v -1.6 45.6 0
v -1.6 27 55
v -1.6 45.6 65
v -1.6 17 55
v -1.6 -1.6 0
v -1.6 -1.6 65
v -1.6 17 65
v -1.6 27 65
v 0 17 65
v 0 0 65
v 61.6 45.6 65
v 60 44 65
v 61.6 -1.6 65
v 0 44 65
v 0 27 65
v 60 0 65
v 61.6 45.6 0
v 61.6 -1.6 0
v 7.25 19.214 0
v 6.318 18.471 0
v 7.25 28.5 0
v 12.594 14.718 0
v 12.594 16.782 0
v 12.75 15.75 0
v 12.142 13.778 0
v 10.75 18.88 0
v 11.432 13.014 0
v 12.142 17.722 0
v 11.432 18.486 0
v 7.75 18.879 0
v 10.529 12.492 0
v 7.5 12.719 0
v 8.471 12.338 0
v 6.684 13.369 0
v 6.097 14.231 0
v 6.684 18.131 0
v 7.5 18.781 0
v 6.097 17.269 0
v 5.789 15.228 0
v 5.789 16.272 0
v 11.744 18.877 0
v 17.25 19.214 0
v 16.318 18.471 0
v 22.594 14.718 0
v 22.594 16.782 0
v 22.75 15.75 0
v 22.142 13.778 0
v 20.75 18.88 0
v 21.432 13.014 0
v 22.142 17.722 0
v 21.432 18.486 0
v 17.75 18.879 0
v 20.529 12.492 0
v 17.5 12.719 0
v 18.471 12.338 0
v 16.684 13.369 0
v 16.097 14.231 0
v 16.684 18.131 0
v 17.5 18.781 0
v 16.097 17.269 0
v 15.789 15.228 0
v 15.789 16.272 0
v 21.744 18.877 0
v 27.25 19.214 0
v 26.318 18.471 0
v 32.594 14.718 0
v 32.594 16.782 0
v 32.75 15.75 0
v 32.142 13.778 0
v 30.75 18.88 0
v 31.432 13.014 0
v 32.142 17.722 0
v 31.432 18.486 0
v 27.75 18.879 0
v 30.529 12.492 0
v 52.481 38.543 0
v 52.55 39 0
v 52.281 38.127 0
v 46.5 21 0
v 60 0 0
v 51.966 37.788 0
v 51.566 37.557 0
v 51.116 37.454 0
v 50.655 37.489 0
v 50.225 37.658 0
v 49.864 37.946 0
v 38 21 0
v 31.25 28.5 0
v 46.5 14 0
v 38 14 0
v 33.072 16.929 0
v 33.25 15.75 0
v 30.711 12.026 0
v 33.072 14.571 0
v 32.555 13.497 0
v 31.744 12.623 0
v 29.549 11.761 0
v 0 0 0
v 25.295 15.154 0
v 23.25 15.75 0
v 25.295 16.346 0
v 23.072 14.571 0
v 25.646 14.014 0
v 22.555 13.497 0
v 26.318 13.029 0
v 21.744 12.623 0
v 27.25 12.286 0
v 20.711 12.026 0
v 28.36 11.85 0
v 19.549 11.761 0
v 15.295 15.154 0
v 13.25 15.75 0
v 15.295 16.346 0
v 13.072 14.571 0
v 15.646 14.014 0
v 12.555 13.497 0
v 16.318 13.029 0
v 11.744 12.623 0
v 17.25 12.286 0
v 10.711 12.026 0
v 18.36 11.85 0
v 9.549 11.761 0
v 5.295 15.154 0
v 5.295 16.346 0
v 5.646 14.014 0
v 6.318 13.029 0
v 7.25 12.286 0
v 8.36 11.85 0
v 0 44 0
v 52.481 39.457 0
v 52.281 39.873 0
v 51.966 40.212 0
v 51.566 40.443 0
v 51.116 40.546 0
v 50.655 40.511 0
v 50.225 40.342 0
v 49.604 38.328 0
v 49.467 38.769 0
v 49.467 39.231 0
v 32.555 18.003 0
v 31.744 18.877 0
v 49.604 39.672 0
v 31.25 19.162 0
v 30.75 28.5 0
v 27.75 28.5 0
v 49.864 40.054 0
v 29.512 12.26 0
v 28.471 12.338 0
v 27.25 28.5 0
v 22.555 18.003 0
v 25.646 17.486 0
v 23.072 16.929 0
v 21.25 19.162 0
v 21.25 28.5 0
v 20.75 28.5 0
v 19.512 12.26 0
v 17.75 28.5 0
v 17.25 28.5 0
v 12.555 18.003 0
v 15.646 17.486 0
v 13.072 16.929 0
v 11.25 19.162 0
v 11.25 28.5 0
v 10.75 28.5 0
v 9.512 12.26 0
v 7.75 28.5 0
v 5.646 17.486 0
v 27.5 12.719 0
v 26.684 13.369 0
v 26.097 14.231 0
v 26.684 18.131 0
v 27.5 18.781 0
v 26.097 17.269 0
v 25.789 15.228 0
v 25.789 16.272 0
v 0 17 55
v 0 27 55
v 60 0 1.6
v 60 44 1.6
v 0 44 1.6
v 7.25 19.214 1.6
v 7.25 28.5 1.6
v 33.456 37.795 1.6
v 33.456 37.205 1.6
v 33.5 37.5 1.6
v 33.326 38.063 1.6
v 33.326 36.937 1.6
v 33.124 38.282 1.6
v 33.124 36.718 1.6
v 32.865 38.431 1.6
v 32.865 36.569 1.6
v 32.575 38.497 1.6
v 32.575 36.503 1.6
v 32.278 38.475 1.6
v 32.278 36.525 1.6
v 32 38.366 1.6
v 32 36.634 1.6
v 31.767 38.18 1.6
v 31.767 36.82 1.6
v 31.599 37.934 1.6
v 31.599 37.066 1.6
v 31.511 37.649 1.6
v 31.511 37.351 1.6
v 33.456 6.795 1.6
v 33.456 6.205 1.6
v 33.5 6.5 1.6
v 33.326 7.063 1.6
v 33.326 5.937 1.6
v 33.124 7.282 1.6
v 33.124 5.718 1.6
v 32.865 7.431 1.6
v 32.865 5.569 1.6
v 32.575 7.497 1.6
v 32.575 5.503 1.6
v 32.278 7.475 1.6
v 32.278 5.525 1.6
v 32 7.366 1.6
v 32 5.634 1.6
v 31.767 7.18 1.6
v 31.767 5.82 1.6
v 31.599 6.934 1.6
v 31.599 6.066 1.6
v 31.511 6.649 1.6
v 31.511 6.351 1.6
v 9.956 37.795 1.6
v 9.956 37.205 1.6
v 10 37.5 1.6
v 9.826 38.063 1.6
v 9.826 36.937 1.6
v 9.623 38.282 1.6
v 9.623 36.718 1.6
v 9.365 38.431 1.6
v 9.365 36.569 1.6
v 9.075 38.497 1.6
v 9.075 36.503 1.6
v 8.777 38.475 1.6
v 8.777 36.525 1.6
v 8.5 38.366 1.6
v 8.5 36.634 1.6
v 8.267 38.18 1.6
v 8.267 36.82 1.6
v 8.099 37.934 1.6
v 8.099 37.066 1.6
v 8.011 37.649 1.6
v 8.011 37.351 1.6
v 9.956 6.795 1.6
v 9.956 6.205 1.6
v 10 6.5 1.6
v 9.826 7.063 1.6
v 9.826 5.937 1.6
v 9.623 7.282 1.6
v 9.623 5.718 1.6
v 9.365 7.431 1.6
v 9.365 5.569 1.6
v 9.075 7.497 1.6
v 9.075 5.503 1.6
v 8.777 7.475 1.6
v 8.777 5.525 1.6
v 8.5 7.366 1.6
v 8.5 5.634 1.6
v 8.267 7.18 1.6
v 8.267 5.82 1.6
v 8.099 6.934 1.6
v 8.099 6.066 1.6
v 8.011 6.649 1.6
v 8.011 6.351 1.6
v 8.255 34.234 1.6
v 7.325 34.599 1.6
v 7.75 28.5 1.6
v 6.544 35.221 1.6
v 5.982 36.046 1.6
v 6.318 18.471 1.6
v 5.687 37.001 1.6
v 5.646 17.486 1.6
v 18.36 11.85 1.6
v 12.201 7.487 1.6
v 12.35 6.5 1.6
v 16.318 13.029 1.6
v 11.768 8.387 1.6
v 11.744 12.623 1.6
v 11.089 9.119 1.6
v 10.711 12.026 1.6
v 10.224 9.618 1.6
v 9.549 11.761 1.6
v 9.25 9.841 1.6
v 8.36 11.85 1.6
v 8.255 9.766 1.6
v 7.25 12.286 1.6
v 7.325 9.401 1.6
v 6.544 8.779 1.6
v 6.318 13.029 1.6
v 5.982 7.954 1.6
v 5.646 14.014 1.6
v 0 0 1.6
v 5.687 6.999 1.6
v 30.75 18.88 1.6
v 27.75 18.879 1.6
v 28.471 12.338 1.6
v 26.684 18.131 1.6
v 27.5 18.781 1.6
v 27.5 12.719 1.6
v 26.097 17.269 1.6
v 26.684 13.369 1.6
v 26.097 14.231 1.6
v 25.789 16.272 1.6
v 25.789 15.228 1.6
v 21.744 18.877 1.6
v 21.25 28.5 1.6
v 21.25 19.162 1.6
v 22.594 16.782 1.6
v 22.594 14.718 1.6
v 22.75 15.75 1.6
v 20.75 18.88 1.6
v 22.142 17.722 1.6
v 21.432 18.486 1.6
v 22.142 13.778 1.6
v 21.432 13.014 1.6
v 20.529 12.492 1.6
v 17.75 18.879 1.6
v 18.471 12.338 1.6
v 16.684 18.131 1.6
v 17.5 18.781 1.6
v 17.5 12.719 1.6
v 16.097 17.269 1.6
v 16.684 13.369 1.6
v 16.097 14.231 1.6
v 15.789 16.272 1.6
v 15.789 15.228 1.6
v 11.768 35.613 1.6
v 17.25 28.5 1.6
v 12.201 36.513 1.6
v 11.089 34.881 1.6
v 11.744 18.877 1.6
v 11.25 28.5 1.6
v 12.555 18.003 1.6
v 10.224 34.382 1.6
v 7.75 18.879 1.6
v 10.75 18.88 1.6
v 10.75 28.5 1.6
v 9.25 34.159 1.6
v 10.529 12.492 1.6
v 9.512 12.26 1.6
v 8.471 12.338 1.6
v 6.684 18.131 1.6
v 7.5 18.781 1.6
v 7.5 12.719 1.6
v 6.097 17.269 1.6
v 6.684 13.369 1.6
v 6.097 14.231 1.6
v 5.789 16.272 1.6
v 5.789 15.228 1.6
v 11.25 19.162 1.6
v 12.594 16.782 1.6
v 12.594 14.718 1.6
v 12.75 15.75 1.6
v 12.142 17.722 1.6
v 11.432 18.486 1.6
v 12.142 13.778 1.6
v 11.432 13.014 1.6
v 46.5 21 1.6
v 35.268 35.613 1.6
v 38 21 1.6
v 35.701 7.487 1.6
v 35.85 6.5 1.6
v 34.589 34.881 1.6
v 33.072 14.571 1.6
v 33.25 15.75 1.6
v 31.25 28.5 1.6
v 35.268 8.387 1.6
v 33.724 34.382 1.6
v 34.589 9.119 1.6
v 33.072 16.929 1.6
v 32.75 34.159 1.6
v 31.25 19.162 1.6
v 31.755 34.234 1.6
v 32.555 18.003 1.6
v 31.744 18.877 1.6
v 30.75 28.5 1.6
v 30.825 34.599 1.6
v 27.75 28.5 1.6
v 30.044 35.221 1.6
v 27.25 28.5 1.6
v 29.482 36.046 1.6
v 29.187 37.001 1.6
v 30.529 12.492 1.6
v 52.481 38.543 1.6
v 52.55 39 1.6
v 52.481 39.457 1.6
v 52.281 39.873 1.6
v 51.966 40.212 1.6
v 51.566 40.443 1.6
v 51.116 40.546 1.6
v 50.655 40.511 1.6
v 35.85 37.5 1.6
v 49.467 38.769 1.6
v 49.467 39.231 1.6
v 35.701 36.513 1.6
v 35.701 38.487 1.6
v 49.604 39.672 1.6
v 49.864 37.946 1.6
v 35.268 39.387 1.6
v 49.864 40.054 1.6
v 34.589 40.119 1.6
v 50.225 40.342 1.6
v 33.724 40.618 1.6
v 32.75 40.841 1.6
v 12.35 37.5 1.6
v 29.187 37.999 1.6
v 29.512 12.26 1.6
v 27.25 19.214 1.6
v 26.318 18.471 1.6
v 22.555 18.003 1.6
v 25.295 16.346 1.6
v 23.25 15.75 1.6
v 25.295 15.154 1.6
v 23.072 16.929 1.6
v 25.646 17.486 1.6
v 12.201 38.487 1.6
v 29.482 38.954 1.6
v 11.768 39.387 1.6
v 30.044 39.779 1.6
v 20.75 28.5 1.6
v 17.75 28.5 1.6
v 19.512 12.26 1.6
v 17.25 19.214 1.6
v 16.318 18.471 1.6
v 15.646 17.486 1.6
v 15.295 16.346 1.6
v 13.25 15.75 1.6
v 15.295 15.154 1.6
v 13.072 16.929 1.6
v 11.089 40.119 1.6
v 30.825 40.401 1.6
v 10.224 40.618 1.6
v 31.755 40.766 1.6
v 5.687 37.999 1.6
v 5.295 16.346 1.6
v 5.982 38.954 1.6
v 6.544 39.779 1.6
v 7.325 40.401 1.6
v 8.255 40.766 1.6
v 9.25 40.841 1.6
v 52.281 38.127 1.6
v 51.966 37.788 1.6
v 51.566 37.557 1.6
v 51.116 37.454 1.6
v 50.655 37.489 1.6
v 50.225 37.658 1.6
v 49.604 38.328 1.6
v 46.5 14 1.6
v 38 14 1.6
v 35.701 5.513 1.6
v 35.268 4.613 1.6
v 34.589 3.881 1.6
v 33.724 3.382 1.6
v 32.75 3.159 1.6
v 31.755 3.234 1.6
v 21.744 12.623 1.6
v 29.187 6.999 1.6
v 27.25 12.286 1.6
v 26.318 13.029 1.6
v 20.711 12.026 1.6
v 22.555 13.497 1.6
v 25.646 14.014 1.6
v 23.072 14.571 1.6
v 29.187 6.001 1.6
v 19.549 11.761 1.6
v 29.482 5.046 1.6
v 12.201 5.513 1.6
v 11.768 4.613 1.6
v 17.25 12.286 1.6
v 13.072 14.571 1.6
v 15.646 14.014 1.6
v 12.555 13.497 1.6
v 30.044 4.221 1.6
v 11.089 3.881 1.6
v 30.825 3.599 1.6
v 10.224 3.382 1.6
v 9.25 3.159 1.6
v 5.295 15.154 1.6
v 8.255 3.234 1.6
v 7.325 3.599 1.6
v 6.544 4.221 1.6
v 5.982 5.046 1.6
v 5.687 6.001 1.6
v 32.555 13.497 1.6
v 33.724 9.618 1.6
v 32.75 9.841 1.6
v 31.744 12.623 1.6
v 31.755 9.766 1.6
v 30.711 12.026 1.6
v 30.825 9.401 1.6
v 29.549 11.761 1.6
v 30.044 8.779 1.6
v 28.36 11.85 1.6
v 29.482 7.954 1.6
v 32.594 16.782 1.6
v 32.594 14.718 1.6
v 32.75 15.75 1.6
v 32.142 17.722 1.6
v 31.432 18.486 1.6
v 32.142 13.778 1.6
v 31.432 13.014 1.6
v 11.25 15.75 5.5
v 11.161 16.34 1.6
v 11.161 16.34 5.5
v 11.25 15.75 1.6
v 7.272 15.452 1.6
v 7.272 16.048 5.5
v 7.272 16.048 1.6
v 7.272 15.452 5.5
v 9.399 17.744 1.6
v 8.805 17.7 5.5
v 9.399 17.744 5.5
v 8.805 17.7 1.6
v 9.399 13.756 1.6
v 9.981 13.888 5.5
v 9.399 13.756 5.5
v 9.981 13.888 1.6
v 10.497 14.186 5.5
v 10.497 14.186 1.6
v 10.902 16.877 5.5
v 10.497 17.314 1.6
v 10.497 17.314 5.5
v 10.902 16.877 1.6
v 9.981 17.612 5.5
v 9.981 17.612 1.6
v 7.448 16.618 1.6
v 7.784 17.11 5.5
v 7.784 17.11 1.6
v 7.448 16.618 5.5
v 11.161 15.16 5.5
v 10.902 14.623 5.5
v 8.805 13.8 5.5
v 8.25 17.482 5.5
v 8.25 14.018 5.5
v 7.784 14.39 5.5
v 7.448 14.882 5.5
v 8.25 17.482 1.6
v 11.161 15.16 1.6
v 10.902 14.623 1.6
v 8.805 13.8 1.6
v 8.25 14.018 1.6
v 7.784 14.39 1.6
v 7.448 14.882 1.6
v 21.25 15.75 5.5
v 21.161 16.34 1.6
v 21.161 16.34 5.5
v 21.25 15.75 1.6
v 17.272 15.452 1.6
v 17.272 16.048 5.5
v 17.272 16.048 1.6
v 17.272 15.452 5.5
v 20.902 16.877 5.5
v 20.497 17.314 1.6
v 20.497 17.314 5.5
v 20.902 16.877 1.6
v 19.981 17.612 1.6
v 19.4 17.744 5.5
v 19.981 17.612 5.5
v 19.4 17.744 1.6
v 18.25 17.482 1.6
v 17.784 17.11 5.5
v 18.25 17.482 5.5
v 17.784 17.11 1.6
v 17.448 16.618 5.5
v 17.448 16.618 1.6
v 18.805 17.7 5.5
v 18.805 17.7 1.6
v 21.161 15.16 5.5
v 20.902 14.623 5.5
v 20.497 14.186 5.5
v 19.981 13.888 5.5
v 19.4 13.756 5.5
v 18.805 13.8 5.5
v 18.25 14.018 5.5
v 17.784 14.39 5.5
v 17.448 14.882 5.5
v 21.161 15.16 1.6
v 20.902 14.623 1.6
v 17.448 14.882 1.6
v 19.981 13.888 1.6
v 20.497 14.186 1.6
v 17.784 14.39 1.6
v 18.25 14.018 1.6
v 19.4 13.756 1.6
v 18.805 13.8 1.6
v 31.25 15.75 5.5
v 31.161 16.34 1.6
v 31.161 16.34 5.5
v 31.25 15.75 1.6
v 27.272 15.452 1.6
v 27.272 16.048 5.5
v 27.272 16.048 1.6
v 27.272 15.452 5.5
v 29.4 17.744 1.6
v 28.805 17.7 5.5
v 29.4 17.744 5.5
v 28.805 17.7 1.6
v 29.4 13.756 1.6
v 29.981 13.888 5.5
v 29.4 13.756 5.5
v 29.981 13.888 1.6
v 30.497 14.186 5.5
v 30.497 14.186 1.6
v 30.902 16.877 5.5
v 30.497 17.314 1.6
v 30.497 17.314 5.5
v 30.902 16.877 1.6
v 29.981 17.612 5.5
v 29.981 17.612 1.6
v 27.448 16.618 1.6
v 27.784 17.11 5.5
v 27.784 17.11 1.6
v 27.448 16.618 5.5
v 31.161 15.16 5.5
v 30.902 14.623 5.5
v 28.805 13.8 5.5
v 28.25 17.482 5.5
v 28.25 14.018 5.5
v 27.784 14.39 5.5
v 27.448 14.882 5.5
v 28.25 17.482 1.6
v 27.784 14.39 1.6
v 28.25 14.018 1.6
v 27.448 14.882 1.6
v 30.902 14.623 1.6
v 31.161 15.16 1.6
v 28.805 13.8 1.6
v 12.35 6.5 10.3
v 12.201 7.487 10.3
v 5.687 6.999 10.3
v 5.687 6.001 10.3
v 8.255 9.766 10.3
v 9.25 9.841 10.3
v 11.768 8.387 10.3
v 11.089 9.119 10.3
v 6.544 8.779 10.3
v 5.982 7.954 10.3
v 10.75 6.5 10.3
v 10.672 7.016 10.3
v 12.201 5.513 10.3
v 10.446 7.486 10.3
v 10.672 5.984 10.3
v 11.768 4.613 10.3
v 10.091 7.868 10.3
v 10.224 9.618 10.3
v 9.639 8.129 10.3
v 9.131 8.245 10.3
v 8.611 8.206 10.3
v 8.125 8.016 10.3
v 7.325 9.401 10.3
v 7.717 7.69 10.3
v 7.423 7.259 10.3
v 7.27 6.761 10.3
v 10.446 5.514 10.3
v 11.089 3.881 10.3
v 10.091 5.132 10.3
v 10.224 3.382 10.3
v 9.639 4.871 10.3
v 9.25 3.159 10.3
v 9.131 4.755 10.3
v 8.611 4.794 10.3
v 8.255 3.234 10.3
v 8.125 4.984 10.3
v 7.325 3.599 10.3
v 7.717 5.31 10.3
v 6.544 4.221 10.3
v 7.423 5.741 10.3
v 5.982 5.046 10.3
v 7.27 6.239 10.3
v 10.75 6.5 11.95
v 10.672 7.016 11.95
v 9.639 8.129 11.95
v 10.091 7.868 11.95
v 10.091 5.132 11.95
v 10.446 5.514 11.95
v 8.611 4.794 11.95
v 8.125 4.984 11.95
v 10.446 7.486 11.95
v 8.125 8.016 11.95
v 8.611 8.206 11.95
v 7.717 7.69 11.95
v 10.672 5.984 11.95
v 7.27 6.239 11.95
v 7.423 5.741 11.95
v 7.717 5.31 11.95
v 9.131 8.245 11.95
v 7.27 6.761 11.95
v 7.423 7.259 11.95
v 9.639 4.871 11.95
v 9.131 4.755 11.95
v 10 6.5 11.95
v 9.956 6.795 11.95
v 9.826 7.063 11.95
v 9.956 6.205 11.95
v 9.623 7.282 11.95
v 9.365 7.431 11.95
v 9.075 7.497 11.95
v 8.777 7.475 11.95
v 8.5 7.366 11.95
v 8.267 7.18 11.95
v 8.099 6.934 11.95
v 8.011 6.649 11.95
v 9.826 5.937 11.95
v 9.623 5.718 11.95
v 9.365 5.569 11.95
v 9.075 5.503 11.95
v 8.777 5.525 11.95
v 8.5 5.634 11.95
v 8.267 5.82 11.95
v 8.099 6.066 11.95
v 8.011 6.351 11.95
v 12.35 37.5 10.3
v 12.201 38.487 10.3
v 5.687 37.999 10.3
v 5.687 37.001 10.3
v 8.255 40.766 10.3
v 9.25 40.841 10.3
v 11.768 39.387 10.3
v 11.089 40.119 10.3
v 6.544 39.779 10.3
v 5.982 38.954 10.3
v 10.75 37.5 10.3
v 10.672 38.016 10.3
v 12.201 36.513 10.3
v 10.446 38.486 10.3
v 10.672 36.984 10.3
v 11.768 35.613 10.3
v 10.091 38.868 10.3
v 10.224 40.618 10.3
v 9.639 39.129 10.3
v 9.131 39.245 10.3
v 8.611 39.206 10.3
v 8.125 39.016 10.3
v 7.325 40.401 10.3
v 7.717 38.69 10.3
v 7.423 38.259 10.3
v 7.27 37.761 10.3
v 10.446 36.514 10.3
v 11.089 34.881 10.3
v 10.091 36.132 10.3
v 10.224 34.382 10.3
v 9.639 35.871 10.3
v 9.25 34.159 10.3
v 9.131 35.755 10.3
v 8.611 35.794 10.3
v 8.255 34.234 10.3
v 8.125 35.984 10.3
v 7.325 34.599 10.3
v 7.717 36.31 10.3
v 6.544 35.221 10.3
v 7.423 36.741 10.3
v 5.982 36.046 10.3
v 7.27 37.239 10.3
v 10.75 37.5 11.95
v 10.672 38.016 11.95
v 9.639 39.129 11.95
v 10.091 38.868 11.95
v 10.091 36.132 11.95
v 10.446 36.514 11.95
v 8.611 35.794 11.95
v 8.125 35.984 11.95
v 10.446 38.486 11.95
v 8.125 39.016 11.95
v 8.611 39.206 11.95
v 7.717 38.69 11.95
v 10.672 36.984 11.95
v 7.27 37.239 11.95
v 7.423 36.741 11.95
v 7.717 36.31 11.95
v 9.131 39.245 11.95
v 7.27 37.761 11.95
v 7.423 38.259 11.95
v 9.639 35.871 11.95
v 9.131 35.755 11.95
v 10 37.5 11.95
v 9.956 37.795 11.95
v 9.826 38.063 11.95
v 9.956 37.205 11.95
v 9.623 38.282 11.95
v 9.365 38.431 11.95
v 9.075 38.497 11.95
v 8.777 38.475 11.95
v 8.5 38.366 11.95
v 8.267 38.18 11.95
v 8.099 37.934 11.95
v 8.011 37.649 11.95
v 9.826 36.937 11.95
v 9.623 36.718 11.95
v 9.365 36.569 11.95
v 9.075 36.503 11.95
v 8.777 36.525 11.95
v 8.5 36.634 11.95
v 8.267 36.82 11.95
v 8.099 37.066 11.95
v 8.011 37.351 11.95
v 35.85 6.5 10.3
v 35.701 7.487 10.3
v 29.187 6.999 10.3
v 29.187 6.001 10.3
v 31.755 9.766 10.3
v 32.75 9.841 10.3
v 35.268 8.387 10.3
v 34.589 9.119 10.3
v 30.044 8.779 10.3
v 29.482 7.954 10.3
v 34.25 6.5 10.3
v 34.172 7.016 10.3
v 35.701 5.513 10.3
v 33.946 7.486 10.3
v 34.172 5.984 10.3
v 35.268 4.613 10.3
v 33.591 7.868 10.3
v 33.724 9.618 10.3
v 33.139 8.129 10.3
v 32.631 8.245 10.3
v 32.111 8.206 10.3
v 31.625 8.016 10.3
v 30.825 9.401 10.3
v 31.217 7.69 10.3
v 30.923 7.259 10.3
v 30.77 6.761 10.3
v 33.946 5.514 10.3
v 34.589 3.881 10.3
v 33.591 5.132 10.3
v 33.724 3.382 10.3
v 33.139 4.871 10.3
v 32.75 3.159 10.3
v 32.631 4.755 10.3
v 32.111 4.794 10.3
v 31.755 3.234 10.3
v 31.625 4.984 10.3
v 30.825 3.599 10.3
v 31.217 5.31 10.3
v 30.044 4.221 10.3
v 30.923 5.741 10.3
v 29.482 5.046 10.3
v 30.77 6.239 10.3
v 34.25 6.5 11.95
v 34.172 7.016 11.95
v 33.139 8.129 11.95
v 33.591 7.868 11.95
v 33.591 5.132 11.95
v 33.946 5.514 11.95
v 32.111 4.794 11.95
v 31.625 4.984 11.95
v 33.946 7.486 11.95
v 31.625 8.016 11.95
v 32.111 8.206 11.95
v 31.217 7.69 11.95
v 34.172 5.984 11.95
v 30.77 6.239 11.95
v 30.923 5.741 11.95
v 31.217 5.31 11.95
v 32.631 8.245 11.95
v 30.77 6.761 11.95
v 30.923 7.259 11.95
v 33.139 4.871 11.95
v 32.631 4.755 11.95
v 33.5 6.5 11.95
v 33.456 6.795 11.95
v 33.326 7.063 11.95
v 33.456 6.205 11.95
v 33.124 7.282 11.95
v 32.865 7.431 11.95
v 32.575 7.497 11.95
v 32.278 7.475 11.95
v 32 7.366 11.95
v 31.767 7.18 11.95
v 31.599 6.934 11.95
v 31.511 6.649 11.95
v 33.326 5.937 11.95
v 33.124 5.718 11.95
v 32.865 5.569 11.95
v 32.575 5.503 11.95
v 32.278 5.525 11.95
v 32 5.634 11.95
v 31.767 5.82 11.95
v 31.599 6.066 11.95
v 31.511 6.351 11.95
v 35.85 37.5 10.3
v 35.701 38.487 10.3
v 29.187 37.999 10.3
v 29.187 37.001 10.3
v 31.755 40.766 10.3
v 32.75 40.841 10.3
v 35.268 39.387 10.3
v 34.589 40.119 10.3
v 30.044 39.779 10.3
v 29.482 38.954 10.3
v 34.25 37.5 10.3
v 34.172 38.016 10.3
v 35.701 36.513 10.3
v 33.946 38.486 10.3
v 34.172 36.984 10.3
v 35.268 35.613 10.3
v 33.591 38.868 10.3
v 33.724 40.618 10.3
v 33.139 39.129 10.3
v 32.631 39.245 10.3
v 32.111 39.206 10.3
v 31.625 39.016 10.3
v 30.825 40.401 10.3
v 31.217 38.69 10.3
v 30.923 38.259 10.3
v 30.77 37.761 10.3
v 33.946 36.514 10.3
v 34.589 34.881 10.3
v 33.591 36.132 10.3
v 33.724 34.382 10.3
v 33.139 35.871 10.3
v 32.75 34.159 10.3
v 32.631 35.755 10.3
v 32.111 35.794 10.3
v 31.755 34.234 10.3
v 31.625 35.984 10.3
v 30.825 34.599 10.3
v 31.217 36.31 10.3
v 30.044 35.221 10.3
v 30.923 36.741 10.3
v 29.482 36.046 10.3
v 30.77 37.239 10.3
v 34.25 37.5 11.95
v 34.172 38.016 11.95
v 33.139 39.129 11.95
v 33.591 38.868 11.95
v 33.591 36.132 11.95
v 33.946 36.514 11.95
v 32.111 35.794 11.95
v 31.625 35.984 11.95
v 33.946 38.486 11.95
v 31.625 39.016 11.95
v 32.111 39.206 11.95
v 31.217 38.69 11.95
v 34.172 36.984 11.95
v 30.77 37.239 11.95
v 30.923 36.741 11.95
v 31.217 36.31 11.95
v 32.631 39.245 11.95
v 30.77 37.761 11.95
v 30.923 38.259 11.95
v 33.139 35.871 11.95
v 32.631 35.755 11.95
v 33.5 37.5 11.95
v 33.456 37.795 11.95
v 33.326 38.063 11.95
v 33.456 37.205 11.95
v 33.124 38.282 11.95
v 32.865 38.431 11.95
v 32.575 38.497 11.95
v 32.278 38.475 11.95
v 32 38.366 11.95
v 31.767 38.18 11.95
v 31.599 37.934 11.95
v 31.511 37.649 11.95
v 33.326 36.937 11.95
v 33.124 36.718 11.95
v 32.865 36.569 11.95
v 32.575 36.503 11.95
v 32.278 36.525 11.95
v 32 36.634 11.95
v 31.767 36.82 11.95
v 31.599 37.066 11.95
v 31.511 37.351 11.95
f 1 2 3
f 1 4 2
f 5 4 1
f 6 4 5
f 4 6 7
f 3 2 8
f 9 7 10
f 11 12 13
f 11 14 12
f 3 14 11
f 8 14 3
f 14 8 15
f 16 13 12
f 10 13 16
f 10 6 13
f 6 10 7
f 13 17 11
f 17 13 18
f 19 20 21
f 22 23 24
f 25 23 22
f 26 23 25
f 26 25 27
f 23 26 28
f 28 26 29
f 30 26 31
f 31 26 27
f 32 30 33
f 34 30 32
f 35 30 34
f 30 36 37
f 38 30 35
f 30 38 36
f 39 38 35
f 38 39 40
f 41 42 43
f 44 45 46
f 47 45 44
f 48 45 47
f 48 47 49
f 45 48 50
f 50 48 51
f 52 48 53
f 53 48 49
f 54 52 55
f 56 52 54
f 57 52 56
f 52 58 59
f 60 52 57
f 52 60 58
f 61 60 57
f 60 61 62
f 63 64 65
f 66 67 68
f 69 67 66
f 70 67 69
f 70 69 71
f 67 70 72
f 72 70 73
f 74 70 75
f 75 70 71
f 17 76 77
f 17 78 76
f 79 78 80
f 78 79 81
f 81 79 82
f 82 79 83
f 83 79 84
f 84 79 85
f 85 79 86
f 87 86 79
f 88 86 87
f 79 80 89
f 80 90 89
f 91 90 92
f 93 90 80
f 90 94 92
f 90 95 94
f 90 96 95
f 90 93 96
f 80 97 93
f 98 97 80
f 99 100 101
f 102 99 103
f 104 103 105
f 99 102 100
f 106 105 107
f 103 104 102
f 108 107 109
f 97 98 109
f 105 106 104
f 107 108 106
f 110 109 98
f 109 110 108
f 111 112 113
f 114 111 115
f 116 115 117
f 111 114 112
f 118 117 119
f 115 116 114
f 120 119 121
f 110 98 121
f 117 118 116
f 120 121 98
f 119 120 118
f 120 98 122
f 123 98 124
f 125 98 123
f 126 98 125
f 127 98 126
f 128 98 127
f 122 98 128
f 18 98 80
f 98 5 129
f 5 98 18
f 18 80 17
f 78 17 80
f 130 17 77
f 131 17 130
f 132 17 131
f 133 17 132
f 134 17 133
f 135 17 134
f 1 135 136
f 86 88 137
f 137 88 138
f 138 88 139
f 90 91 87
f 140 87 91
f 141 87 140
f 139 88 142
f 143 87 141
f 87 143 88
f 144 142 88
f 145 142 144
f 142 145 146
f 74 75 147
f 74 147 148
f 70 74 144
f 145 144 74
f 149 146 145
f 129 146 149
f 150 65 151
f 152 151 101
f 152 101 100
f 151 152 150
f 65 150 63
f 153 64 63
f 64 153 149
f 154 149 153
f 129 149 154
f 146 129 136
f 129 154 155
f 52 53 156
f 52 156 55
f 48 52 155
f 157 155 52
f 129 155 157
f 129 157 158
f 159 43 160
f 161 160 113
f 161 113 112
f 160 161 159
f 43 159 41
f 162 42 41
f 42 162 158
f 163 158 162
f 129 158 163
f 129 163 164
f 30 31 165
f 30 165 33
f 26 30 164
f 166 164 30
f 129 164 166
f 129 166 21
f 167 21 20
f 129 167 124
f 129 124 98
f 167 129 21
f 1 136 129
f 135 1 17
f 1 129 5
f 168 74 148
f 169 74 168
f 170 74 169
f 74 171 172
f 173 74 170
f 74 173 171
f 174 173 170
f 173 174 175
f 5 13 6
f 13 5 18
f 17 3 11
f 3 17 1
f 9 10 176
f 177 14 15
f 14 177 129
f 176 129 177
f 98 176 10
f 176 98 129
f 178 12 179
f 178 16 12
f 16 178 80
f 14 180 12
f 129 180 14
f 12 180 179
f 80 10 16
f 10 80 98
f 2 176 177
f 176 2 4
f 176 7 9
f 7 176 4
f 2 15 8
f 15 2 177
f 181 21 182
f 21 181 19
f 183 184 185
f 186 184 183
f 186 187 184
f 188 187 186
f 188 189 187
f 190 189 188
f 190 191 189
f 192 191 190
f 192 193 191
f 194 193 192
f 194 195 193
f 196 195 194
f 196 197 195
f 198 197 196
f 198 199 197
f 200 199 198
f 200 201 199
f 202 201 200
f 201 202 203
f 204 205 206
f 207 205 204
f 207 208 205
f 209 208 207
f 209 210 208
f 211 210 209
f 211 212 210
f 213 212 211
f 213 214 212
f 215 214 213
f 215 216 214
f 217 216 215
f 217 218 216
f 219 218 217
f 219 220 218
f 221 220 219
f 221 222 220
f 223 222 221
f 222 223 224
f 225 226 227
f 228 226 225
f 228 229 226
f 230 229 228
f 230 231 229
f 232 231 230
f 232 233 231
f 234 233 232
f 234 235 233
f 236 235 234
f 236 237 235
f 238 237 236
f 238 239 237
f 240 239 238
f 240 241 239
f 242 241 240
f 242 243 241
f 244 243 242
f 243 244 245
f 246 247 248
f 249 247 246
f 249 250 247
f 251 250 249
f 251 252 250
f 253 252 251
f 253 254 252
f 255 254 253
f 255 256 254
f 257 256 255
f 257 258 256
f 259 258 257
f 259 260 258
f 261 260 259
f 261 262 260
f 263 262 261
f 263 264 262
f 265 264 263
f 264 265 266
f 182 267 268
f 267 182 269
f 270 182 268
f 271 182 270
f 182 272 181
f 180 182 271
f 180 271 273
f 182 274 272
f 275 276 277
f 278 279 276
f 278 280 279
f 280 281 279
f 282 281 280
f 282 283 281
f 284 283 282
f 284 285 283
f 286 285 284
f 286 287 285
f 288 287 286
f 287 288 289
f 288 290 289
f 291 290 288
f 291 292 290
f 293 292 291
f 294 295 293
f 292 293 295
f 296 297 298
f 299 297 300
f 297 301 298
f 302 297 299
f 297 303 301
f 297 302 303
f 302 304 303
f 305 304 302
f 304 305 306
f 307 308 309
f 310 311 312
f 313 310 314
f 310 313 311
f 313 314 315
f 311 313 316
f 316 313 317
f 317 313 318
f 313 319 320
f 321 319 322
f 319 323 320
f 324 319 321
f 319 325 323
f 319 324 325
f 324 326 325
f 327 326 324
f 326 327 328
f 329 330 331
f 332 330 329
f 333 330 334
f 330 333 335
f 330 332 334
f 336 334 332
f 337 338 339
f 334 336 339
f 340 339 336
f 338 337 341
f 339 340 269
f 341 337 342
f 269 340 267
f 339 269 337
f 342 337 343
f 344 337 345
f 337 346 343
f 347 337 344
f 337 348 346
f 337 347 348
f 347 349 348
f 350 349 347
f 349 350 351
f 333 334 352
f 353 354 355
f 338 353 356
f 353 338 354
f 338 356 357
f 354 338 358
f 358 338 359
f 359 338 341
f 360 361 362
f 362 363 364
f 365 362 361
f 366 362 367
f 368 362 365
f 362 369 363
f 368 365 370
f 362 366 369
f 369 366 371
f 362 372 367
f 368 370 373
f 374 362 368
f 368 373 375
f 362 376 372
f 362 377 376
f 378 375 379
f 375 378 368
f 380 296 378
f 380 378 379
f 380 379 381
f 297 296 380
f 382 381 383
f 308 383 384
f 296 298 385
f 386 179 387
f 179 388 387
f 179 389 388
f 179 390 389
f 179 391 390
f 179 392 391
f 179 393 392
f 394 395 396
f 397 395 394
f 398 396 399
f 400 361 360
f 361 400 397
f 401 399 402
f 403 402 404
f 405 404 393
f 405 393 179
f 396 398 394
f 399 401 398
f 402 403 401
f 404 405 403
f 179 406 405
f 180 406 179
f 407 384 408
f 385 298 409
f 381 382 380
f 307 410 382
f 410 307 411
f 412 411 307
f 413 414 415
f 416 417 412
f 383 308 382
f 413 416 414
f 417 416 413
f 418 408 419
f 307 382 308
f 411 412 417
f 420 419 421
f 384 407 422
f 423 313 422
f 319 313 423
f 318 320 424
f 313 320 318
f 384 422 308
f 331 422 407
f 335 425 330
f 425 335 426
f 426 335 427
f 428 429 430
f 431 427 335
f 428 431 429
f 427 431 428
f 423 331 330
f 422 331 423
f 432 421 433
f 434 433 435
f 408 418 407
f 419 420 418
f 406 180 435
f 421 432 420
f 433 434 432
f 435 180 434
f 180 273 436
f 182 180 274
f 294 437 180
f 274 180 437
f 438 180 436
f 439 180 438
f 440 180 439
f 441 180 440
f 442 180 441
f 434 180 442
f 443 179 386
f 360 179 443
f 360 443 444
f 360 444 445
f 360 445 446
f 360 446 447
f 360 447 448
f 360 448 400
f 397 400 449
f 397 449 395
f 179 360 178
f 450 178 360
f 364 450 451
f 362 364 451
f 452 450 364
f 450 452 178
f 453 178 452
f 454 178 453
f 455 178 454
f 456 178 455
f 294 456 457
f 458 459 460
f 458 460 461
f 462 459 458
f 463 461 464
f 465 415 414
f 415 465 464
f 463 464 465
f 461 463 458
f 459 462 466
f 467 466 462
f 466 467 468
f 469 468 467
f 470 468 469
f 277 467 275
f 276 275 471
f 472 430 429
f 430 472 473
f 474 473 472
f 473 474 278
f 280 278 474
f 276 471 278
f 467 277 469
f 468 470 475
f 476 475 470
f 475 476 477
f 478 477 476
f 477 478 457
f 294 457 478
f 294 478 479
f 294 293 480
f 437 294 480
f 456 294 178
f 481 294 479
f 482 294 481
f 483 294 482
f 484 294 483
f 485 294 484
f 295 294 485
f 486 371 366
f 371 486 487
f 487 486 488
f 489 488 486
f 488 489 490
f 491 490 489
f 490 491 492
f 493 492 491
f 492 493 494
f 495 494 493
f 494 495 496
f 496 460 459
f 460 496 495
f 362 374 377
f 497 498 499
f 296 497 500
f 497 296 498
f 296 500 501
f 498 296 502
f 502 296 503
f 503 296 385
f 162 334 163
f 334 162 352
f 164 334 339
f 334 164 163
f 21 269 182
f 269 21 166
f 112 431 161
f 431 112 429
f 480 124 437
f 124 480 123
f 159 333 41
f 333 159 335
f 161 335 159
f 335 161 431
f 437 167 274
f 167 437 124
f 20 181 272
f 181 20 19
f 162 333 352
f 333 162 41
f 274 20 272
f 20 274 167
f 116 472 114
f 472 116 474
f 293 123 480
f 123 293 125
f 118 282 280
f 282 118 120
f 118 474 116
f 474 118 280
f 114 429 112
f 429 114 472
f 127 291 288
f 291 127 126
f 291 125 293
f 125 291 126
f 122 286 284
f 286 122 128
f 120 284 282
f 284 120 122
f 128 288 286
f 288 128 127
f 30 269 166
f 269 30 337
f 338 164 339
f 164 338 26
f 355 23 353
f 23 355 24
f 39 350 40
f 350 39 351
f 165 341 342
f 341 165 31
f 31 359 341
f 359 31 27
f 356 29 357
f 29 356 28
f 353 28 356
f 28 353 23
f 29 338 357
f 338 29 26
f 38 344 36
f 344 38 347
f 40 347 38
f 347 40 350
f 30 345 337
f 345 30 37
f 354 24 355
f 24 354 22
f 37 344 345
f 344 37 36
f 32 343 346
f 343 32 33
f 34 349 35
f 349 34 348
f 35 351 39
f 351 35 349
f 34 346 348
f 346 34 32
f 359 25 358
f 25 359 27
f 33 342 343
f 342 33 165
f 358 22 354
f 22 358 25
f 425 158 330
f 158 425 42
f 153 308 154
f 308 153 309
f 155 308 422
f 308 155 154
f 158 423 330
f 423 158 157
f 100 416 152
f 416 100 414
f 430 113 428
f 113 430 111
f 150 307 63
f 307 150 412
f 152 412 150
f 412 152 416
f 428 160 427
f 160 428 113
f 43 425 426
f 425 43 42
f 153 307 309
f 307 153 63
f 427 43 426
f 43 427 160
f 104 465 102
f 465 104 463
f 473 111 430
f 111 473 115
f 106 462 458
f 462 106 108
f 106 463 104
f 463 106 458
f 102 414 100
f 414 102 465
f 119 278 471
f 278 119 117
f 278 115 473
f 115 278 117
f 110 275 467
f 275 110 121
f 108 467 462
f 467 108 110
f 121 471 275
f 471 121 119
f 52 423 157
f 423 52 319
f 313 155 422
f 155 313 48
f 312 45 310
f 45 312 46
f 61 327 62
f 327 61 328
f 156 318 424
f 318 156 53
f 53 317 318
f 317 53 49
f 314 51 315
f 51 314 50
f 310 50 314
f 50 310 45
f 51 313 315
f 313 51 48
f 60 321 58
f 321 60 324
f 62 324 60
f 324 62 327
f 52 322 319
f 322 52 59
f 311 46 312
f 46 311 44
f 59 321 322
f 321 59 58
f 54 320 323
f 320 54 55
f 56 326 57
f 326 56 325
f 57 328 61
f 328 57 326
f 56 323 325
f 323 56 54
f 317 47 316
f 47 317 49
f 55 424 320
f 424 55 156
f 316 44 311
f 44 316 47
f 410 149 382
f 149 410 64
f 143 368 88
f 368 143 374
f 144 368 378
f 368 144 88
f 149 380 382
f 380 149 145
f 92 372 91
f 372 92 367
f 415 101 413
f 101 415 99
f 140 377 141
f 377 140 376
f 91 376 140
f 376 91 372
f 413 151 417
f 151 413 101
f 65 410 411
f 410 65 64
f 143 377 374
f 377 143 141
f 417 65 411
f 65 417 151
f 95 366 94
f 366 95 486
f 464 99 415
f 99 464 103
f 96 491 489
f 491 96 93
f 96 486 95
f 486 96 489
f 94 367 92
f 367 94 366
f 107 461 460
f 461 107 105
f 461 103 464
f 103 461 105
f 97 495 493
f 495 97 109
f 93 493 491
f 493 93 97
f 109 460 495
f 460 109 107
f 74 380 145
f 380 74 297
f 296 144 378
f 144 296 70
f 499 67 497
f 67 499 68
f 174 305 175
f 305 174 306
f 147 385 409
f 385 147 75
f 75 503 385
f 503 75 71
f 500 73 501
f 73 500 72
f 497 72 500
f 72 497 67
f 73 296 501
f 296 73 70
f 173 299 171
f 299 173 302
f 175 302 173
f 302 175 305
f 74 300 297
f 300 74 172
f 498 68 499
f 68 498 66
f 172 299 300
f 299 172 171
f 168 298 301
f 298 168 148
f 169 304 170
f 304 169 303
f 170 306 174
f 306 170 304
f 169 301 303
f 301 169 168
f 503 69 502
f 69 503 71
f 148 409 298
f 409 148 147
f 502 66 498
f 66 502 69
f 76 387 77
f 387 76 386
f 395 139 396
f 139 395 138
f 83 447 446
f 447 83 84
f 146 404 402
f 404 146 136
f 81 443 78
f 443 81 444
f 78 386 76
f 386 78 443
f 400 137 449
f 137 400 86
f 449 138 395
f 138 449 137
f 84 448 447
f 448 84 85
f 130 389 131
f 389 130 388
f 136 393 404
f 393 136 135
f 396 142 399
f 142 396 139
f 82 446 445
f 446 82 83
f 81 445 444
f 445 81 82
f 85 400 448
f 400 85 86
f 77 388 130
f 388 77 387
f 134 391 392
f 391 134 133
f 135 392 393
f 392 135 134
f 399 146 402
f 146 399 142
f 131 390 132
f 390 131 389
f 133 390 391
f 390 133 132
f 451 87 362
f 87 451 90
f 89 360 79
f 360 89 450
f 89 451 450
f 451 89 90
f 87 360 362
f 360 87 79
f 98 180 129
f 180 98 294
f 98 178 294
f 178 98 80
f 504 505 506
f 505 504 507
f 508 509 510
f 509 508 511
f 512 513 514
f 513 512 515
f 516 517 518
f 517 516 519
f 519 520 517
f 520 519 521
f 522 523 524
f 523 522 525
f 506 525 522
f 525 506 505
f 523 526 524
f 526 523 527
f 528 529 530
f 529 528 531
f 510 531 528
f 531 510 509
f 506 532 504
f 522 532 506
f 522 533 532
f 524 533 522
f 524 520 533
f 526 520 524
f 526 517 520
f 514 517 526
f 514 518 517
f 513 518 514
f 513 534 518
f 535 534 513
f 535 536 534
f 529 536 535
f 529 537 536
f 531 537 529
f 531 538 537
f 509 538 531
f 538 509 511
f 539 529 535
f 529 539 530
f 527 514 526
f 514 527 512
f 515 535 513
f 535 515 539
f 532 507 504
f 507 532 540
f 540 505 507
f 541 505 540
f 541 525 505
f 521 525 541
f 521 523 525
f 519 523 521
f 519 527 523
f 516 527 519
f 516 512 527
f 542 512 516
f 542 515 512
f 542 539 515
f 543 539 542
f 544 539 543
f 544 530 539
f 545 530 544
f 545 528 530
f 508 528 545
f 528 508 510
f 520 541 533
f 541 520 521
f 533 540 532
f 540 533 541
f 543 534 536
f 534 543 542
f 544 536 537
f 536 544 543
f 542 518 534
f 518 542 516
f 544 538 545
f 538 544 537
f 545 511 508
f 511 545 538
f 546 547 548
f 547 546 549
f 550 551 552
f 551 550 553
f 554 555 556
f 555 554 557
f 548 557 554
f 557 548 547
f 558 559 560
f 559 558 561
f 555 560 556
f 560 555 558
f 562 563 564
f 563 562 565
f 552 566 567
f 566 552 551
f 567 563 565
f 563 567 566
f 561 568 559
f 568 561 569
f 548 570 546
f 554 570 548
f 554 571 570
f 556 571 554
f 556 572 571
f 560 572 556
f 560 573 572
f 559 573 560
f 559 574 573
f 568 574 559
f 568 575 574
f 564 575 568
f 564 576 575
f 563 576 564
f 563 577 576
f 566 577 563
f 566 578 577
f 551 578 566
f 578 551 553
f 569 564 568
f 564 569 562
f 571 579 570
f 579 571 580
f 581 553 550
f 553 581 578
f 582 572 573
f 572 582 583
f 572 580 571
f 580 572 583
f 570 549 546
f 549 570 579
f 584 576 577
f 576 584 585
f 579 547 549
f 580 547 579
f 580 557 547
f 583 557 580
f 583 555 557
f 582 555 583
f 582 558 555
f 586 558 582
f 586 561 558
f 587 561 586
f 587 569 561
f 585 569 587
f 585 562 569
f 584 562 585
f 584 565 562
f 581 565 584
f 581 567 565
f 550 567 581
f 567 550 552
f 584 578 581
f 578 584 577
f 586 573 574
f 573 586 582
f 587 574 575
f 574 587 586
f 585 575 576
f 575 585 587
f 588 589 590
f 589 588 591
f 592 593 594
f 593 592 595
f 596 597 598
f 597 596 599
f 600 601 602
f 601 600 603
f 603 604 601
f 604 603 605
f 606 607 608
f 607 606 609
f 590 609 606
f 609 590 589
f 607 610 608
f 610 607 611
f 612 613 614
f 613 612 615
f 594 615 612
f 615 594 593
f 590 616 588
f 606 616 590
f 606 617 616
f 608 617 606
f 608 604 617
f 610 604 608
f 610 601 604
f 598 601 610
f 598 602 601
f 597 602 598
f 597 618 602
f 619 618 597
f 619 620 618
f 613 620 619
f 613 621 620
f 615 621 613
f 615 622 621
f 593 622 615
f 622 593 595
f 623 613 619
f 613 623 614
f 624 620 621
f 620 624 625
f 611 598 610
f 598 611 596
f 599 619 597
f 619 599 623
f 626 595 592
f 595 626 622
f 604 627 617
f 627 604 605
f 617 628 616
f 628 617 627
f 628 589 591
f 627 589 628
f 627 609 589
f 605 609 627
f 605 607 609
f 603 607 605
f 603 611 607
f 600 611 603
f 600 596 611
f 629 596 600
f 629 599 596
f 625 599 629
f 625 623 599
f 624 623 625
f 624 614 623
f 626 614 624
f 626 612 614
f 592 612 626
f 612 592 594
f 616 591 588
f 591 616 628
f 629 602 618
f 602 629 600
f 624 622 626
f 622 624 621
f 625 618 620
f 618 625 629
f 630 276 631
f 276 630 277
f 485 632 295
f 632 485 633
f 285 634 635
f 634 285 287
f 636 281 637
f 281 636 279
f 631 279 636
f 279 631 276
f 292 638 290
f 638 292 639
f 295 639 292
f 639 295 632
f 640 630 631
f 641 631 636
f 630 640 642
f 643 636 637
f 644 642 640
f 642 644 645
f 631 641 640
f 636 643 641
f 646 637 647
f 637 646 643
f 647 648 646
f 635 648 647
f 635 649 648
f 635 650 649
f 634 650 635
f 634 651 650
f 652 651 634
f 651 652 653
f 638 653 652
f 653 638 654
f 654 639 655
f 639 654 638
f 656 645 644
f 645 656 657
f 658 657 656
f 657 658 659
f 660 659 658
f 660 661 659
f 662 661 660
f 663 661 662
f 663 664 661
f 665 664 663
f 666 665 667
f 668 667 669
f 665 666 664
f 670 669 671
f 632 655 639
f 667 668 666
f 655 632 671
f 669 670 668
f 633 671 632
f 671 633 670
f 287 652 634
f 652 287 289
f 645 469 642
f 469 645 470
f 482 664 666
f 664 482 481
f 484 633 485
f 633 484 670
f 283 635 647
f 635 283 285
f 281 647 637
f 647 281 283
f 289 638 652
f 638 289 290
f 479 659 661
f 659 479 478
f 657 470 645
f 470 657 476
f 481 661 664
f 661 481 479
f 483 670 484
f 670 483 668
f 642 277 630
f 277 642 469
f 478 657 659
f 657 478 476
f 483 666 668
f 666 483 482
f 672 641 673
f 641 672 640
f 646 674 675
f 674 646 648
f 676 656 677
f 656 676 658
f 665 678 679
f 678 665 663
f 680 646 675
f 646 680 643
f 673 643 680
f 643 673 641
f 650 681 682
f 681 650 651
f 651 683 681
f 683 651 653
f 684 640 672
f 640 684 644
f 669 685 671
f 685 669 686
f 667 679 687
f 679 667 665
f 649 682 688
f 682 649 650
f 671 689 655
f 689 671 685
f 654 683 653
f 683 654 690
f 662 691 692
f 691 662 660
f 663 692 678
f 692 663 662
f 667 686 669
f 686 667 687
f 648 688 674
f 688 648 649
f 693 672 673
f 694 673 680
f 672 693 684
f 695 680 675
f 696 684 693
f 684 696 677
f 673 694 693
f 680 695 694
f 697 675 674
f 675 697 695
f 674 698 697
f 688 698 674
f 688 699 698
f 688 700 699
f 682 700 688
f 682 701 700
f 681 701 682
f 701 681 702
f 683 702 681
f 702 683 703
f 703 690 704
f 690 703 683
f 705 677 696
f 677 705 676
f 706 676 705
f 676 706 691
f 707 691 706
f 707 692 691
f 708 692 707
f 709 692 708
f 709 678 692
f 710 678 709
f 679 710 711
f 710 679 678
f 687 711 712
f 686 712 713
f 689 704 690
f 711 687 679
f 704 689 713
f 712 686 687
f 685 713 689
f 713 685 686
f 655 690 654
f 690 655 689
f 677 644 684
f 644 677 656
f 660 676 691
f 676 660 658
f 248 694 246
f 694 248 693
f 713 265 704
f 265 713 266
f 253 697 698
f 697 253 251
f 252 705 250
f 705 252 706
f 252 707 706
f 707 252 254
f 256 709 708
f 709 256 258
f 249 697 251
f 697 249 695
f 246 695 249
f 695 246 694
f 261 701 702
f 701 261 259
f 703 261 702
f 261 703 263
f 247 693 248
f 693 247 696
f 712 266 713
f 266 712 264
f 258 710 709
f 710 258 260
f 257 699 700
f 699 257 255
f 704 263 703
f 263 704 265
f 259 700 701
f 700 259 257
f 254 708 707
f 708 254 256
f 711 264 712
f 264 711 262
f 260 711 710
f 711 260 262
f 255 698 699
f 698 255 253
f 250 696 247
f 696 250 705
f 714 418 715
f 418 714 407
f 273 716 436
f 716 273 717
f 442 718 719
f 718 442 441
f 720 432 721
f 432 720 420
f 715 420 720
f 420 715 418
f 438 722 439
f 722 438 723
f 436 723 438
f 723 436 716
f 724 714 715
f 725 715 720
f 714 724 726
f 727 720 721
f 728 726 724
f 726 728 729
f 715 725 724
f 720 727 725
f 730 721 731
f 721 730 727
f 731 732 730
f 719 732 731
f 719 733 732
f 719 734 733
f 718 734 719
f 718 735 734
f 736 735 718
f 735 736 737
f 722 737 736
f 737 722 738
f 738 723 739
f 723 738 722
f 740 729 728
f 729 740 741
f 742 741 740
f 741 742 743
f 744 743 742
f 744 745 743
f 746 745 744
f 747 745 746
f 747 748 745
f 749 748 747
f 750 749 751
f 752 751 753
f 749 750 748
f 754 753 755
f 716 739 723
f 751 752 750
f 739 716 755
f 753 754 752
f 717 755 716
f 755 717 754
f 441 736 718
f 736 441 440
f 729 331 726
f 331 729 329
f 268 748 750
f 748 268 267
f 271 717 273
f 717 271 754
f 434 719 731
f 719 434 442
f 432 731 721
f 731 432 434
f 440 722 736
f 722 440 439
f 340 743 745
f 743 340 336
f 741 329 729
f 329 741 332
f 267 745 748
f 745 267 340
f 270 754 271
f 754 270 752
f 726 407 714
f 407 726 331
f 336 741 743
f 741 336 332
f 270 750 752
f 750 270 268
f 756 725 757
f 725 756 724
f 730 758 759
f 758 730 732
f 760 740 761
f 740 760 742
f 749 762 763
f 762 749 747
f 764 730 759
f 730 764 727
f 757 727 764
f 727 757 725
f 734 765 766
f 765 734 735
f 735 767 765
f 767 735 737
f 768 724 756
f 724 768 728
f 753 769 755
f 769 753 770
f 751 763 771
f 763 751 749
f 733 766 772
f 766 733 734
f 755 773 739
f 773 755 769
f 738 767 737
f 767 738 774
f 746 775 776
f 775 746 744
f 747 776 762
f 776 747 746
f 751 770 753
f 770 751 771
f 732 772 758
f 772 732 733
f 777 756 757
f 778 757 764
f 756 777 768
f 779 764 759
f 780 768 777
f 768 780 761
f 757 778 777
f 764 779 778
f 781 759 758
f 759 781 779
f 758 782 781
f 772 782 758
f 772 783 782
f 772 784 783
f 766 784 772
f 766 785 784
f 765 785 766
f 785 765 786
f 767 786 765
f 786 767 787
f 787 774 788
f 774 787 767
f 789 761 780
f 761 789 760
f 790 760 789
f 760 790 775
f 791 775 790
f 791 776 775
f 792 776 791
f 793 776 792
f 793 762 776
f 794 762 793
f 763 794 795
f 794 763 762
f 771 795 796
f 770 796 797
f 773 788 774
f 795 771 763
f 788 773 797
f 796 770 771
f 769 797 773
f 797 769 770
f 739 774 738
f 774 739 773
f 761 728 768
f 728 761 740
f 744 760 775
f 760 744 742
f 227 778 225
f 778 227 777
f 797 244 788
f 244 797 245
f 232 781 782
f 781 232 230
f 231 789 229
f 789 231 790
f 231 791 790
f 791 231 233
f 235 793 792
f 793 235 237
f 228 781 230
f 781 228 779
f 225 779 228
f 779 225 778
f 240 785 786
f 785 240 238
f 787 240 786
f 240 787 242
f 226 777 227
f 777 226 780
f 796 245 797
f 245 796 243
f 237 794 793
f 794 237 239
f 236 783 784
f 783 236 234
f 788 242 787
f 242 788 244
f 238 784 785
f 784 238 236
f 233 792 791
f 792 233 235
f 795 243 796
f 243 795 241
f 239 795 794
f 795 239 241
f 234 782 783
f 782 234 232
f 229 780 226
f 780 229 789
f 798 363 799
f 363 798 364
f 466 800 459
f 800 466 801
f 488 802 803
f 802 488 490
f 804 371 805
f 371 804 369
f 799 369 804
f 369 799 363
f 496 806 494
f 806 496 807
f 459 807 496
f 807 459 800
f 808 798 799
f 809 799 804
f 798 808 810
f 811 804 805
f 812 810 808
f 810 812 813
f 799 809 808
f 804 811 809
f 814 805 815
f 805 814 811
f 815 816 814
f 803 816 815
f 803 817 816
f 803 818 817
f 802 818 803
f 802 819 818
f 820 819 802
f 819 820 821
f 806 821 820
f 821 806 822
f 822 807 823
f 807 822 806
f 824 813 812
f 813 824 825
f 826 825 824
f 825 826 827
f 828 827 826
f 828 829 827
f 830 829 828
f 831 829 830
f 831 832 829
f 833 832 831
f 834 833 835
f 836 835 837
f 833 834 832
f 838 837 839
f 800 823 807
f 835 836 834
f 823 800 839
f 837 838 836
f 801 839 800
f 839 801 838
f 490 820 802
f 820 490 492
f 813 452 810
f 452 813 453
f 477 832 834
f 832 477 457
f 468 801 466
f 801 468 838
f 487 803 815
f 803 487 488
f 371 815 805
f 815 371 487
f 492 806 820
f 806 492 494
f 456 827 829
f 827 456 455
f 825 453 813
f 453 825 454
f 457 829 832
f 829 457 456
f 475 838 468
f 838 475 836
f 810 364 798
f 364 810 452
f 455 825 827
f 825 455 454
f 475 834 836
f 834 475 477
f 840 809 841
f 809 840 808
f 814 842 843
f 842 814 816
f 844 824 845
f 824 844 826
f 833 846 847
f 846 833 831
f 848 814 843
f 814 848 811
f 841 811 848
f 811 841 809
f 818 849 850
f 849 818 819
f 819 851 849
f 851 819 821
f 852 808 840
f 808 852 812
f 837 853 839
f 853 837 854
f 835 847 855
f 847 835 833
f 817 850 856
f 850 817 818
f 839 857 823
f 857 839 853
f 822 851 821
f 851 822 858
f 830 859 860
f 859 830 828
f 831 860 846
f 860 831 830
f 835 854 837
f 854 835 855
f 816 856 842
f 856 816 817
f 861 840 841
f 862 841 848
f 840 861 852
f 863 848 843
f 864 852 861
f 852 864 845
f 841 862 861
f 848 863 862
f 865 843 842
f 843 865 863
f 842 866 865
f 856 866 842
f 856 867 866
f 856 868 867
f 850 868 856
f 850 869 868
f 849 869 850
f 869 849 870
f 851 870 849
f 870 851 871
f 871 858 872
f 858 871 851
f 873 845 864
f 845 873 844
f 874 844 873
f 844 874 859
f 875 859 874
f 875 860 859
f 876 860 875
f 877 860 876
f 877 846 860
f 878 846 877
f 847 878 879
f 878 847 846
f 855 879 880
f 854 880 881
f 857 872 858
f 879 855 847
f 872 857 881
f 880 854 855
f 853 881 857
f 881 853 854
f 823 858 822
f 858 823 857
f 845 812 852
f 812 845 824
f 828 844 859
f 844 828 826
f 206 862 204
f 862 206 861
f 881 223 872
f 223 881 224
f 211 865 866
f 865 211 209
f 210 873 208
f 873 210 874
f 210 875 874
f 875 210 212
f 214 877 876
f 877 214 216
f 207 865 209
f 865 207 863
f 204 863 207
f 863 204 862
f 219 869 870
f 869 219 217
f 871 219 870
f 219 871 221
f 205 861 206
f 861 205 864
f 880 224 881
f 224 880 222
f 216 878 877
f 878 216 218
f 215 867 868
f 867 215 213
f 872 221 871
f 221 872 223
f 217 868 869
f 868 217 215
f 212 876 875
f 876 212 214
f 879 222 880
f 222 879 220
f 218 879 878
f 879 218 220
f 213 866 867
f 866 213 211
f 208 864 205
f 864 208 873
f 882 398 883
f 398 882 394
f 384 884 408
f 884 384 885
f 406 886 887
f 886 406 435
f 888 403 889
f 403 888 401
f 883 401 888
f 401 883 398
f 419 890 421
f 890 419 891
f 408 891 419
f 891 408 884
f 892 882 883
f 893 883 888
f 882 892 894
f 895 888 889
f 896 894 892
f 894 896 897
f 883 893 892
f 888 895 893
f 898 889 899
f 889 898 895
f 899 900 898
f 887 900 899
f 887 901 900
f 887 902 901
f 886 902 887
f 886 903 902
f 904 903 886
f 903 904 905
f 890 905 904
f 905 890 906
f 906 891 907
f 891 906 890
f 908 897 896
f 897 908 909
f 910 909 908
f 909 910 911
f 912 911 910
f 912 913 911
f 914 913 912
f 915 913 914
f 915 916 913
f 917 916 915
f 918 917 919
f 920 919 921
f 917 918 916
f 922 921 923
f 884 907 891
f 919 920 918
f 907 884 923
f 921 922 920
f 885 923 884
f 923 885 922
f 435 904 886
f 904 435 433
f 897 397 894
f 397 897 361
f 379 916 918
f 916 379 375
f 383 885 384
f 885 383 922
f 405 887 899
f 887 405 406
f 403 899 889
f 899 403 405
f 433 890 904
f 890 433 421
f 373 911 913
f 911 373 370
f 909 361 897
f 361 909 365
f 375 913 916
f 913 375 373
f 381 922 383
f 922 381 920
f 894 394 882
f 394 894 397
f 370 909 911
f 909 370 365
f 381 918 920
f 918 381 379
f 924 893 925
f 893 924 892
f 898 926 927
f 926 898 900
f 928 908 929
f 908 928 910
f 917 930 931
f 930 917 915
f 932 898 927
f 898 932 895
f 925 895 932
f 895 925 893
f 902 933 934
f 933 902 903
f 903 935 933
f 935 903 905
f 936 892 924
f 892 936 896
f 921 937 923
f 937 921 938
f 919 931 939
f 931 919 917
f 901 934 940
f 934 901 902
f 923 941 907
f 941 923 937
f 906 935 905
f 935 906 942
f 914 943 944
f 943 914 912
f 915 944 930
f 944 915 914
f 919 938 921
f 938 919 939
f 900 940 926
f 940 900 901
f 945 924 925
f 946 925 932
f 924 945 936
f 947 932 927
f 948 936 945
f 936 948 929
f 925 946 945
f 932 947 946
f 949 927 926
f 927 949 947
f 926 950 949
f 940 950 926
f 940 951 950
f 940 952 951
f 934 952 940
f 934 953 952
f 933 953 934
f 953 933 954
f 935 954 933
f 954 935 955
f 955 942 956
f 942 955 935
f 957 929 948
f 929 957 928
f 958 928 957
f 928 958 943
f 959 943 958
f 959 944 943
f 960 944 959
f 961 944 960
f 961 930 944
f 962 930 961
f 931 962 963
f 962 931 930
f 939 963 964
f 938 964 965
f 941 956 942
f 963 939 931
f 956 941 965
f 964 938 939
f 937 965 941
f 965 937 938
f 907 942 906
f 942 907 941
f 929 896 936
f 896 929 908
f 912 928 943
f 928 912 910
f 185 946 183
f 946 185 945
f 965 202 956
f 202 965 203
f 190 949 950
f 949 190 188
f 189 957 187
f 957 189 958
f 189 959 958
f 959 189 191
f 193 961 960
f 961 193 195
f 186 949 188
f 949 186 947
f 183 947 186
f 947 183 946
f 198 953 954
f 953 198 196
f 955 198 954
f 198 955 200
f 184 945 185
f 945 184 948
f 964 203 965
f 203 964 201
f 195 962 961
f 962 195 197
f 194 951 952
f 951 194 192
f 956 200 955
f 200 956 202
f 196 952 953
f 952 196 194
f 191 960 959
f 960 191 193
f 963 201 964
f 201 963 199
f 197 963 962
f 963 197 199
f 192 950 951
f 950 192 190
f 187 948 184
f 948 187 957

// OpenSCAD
// file: ir_receiver_pcb.scad
pcb_h=1.65;

function receiver_pcb_height_total() = pcb_h + 10.3;

receiver_pcb();

module receiver_pcb()
{
    difference()
    {
        union()
        {
            pcb();

            translate([0,0,pcb_h])
            {
                ir_sensor();
                led();
                buttons();
            }
        }
            translate([7,6.5,0])
            spacers_holes();
    }
}

module pcb()
{
    cube([56,42,pcb_h]);
}

module spacers_holes()
{
    translate([5,0,0])
    spacer_hole(d=2);

    translate([0,0,0])
    spacer_hole();
    translate([0,31,0])
    spacer_hole();
    translate([23.5,0,0])
    spacer_hole();
    translate([23.5,31,0])
    spacer_hole();
}

module spacer_hole(d=3.5)
{
    cylinder(d=d,h=pcb_h,$fn=21);
}

module ir_sensor()
{
    translate([36,23,0])
    cube([8.5,7,10.3]);
}

module led()
{
    translate([49,5,0])
    cylinder(d=3.1,h=9,$fn=21);
    translate([49,5,9])
    cylinder(d=3.1,h=20,$fn=21);
}

module buttons()
{
    translate([4,25,0])
    button();
    translate([14,25,0])
    button();
    translate([24,25,0])
    button();
}

module button()
{
    cube([6.5,6.5,3.5]);
    translate([6.5/2,6.5/2,0])
    cylinder(d=4,h=5,$fn=21);
    
//    translate([6.5/2,6.5/2,0])
//    #cylinder(d=4,h=20,$fn=21);    
}
// main file
use<ir_receiver_pcb.scad>;

width = 60;
length = 44;
height = 65;

w=0.4*4;
h=10-w;
d=3.5;

// TODO: U KRABIČKY NEZAPOMENOUT NA USB PORT, ABY BYLO MOŽNÉ VYČÍTAT DATA.

translate([-w,-w,0])
difference()
{
    cube([width+2*w,length+2*w,height]);
    translate([w,w,0])
    cube([width,length,height]);
    
    translate([0,length/2+w-5,height-10])
    #cube([w,10,10]);
}    

bottom_side(width,length,w);

module bottom_side(width,length,w)
{
    difference()
    {
        cube([width,length,w]);
        translate([2,-25/2,0])
        button_holes();

        rotate([180,0,0])
        translate([(width/2-(width-4)/2),-(length-2)-2,-receiver_pcb_height_total()+1])
        receiver_pcb();
    }
    translate([2,-25/2,w])
    buttons();

    translate([7+2,6.5,0])
    spacers();
}

module buttons()
{
    translate([4,25,0])
    button();
    translate([14,25,0])
    button();
    translate([24,25,0])
    button();
}

module button()
{
    translate([6.5/2,6.5/2,0])
    cylinder(d=4,h=3.9,$fn=21);
}

module button_holes()
{
    translate([4,25,0])
    button_hole();
    translate([14,25,0])
    button_hole();
    translate([24,25,0])
    button_hole();
}

module button_hole()
{
    difference()
    {    
        union()
        {
            translate([6.5/2-2,6,0])
            cube([4,10,w]);
            translate([6.5/2,6.5/2,0])
            cylinder(d=8,h=w,$fn=21);    
        }
        translate([6.5/2-2+1/2,6,0])
        cube([3,10,w]);
        translate([6.5/2,6.5/2,0])
        cylinder(d=7,h=w,$fn=21);    
    }
}

module spacers()
{    
    translate([0,0,0])
    spacer();
    translate([0,31,0])
    spacer();
    translate([23.5,0,0])
    spacer();
    translate([23.5,31,0])
    spacer();
}

module spacer()
{
    pcb_h=1.65;

    difference()
    {
        union()
        {
            cylinder(d=3.5+2*w,h=receiver_pcb_height_total()-pcb_h,$fn=21);
            cylinder(d=3.5,h=receiver_pcb_height_total(),$fn=21);
        }
        translate([0,0,w])
        cylinder(d=2,h=receiver_pcb_height_total()+pcb_h,$fn=21);
    }
}
